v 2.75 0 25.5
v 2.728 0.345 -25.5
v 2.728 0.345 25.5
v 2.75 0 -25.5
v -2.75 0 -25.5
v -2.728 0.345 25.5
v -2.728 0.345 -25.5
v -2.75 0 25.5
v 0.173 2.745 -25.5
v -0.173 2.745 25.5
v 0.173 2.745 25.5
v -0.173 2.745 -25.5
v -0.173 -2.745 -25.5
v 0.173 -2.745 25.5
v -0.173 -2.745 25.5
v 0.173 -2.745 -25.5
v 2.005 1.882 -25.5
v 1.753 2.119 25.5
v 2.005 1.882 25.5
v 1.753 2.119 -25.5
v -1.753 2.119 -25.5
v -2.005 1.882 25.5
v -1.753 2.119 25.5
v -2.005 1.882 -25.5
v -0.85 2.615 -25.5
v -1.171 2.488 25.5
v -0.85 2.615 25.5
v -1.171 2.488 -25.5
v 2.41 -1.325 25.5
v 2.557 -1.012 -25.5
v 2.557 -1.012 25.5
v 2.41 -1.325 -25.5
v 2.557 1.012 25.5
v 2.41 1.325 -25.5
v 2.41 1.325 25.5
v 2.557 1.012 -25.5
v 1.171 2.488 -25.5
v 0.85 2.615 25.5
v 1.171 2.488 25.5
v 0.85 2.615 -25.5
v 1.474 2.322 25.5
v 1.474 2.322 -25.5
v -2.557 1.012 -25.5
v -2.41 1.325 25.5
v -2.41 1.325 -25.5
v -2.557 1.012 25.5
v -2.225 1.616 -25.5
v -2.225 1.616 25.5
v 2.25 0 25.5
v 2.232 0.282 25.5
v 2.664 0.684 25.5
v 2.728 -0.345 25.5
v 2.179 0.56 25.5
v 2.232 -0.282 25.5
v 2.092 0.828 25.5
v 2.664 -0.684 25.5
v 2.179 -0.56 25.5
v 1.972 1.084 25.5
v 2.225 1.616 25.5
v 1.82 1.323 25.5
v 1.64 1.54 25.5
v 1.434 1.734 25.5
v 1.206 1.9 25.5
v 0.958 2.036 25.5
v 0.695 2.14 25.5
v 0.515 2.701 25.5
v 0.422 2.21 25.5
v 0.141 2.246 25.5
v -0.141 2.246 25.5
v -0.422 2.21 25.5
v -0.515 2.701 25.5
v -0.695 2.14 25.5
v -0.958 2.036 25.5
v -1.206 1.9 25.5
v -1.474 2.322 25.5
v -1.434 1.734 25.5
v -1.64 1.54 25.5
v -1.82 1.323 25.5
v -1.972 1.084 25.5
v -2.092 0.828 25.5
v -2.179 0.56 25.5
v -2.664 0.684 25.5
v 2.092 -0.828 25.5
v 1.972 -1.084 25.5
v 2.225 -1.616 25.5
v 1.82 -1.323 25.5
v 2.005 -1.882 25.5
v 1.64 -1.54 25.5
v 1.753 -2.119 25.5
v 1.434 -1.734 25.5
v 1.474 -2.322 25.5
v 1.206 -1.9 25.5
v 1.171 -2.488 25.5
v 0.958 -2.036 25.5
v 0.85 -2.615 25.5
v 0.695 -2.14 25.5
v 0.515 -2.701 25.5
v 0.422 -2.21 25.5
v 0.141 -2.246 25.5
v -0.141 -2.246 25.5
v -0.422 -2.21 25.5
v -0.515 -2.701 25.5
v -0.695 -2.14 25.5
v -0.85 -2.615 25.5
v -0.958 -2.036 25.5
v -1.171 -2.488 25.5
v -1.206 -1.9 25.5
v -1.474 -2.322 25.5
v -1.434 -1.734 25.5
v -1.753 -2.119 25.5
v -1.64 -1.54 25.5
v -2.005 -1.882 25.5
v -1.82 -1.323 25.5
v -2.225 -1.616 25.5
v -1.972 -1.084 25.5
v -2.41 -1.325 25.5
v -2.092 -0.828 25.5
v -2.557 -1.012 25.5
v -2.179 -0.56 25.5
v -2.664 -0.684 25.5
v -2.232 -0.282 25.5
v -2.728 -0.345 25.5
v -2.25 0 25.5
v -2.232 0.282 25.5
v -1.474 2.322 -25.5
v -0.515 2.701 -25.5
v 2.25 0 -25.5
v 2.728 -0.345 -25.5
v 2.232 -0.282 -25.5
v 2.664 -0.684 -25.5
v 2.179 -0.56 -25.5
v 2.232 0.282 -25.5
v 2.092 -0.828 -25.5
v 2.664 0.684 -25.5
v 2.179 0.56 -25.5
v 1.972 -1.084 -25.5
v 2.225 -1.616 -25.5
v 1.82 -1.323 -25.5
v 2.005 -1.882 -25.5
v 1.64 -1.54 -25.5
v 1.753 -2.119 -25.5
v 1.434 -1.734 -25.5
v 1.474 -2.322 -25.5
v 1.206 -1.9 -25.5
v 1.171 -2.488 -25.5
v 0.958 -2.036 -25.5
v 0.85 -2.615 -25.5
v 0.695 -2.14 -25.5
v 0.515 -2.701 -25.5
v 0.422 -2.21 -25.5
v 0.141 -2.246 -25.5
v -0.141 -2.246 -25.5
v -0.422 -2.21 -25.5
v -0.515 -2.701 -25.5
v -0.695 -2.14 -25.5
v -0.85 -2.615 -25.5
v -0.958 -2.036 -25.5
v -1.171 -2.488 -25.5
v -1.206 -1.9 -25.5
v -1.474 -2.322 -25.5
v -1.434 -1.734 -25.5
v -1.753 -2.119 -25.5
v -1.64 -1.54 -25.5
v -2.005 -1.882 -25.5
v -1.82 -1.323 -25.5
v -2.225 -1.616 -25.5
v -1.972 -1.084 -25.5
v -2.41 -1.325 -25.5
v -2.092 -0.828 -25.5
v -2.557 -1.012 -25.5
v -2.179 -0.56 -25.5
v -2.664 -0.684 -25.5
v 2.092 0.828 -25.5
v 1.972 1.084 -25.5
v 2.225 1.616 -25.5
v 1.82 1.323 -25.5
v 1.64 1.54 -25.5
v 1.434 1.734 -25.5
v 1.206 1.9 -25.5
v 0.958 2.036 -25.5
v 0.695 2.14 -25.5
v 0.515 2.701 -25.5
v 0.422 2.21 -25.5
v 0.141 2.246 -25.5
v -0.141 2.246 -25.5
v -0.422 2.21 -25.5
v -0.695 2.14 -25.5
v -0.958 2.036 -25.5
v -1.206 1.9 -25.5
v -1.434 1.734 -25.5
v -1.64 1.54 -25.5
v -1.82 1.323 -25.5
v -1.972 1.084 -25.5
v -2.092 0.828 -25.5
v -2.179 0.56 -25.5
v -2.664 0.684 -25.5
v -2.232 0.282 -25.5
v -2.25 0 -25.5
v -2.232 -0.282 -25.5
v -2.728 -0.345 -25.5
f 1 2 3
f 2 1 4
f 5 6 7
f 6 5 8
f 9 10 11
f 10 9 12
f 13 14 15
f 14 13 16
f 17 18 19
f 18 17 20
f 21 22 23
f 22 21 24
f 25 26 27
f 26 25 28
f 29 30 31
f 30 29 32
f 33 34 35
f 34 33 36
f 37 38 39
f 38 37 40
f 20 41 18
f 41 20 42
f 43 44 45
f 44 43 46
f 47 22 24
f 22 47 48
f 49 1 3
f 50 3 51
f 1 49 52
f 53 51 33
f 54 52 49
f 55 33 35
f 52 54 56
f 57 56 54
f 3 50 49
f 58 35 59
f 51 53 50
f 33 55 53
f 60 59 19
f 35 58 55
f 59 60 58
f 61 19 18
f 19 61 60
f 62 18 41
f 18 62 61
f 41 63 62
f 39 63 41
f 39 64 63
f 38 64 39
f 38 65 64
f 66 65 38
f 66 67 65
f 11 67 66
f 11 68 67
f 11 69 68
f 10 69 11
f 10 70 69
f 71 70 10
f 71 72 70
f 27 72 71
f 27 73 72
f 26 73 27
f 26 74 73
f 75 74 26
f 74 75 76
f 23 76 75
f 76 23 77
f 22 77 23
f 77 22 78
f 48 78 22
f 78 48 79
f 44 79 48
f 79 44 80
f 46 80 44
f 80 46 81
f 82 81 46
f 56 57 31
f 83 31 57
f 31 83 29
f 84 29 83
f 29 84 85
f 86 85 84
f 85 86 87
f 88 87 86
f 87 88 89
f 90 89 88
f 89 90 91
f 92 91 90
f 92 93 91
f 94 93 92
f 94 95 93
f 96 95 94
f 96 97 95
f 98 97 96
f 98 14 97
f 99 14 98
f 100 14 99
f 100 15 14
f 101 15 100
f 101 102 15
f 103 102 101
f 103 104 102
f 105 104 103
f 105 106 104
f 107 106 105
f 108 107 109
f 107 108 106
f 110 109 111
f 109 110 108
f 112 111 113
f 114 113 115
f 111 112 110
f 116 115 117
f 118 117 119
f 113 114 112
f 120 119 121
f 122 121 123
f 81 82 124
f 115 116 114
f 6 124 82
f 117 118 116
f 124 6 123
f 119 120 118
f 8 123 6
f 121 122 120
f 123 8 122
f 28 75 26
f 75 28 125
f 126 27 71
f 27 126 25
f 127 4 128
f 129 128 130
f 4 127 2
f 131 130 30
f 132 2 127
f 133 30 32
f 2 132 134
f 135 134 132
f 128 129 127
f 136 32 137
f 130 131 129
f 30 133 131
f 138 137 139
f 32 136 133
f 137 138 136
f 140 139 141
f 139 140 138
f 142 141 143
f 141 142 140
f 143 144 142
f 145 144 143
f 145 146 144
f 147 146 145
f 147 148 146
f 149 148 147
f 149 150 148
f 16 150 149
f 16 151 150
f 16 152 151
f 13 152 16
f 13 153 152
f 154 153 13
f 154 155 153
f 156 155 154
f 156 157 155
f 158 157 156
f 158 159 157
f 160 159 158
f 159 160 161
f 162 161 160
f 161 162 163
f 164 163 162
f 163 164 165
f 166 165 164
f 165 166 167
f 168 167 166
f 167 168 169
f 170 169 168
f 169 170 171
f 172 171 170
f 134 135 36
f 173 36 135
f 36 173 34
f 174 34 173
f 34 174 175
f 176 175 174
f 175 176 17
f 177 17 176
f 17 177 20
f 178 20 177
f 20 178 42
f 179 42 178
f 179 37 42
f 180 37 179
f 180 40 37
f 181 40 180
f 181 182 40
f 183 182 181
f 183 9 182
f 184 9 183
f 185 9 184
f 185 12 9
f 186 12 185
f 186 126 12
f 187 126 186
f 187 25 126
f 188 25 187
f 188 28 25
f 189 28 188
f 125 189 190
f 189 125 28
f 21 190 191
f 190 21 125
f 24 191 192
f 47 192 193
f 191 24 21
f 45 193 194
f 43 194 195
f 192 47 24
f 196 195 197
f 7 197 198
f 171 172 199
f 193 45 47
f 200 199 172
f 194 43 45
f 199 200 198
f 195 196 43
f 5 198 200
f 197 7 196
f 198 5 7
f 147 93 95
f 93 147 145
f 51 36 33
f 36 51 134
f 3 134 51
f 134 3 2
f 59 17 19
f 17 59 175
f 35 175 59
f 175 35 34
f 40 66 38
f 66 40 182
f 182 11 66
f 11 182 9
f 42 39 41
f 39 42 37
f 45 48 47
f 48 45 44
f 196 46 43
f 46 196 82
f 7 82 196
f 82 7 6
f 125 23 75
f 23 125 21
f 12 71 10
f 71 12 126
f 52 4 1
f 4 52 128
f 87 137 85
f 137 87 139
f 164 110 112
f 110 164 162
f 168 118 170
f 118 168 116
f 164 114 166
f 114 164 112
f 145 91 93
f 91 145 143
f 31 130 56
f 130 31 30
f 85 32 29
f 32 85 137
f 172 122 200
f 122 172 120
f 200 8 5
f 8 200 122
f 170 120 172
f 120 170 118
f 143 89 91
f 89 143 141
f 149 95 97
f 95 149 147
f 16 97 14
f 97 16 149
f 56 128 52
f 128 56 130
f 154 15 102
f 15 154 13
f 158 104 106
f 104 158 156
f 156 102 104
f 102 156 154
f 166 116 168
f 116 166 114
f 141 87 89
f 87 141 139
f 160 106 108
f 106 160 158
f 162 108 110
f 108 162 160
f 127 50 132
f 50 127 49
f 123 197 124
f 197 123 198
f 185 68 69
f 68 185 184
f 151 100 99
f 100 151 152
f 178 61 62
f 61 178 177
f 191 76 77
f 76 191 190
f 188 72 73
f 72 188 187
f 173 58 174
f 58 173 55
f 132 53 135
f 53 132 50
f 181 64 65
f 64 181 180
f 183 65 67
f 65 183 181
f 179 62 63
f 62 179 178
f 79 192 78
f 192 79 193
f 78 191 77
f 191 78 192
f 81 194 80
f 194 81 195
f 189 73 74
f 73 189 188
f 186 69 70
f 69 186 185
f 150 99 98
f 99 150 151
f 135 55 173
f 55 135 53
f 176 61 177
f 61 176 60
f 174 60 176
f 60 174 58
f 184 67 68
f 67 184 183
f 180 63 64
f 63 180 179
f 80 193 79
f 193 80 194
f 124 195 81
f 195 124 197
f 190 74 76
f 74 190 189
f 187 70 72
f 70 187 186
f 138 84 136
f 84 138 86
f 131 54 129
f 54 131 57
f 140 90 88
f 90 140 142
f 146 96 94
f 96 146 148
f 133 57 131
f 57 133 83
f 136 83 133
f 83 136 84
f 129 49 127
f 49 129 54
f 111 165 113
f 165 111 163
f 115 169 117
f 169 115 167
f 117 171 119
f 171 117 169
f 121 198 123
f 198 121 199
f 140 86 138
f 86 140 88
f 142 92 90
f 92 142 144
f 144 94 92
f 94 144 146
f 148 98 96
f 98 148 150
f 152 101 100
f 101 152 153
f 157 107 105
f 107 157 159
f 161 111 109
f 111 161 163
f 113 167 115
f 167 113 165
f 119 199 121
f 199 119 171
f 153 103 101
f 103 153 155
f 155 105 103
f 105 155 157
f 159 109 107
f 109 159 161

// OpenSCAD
$fn = 50;


difference() {
	union() {
		translate(v = [0, 0, -25.5000000000]) {
			cylinder(h = 51, r = 2.7500000000);
		}
	}
	union() {
		translate(v = [0, 0, -100.0000000000]) {
			cylinder(h = 200, r = 2.2500000000);
		}
	}
}
